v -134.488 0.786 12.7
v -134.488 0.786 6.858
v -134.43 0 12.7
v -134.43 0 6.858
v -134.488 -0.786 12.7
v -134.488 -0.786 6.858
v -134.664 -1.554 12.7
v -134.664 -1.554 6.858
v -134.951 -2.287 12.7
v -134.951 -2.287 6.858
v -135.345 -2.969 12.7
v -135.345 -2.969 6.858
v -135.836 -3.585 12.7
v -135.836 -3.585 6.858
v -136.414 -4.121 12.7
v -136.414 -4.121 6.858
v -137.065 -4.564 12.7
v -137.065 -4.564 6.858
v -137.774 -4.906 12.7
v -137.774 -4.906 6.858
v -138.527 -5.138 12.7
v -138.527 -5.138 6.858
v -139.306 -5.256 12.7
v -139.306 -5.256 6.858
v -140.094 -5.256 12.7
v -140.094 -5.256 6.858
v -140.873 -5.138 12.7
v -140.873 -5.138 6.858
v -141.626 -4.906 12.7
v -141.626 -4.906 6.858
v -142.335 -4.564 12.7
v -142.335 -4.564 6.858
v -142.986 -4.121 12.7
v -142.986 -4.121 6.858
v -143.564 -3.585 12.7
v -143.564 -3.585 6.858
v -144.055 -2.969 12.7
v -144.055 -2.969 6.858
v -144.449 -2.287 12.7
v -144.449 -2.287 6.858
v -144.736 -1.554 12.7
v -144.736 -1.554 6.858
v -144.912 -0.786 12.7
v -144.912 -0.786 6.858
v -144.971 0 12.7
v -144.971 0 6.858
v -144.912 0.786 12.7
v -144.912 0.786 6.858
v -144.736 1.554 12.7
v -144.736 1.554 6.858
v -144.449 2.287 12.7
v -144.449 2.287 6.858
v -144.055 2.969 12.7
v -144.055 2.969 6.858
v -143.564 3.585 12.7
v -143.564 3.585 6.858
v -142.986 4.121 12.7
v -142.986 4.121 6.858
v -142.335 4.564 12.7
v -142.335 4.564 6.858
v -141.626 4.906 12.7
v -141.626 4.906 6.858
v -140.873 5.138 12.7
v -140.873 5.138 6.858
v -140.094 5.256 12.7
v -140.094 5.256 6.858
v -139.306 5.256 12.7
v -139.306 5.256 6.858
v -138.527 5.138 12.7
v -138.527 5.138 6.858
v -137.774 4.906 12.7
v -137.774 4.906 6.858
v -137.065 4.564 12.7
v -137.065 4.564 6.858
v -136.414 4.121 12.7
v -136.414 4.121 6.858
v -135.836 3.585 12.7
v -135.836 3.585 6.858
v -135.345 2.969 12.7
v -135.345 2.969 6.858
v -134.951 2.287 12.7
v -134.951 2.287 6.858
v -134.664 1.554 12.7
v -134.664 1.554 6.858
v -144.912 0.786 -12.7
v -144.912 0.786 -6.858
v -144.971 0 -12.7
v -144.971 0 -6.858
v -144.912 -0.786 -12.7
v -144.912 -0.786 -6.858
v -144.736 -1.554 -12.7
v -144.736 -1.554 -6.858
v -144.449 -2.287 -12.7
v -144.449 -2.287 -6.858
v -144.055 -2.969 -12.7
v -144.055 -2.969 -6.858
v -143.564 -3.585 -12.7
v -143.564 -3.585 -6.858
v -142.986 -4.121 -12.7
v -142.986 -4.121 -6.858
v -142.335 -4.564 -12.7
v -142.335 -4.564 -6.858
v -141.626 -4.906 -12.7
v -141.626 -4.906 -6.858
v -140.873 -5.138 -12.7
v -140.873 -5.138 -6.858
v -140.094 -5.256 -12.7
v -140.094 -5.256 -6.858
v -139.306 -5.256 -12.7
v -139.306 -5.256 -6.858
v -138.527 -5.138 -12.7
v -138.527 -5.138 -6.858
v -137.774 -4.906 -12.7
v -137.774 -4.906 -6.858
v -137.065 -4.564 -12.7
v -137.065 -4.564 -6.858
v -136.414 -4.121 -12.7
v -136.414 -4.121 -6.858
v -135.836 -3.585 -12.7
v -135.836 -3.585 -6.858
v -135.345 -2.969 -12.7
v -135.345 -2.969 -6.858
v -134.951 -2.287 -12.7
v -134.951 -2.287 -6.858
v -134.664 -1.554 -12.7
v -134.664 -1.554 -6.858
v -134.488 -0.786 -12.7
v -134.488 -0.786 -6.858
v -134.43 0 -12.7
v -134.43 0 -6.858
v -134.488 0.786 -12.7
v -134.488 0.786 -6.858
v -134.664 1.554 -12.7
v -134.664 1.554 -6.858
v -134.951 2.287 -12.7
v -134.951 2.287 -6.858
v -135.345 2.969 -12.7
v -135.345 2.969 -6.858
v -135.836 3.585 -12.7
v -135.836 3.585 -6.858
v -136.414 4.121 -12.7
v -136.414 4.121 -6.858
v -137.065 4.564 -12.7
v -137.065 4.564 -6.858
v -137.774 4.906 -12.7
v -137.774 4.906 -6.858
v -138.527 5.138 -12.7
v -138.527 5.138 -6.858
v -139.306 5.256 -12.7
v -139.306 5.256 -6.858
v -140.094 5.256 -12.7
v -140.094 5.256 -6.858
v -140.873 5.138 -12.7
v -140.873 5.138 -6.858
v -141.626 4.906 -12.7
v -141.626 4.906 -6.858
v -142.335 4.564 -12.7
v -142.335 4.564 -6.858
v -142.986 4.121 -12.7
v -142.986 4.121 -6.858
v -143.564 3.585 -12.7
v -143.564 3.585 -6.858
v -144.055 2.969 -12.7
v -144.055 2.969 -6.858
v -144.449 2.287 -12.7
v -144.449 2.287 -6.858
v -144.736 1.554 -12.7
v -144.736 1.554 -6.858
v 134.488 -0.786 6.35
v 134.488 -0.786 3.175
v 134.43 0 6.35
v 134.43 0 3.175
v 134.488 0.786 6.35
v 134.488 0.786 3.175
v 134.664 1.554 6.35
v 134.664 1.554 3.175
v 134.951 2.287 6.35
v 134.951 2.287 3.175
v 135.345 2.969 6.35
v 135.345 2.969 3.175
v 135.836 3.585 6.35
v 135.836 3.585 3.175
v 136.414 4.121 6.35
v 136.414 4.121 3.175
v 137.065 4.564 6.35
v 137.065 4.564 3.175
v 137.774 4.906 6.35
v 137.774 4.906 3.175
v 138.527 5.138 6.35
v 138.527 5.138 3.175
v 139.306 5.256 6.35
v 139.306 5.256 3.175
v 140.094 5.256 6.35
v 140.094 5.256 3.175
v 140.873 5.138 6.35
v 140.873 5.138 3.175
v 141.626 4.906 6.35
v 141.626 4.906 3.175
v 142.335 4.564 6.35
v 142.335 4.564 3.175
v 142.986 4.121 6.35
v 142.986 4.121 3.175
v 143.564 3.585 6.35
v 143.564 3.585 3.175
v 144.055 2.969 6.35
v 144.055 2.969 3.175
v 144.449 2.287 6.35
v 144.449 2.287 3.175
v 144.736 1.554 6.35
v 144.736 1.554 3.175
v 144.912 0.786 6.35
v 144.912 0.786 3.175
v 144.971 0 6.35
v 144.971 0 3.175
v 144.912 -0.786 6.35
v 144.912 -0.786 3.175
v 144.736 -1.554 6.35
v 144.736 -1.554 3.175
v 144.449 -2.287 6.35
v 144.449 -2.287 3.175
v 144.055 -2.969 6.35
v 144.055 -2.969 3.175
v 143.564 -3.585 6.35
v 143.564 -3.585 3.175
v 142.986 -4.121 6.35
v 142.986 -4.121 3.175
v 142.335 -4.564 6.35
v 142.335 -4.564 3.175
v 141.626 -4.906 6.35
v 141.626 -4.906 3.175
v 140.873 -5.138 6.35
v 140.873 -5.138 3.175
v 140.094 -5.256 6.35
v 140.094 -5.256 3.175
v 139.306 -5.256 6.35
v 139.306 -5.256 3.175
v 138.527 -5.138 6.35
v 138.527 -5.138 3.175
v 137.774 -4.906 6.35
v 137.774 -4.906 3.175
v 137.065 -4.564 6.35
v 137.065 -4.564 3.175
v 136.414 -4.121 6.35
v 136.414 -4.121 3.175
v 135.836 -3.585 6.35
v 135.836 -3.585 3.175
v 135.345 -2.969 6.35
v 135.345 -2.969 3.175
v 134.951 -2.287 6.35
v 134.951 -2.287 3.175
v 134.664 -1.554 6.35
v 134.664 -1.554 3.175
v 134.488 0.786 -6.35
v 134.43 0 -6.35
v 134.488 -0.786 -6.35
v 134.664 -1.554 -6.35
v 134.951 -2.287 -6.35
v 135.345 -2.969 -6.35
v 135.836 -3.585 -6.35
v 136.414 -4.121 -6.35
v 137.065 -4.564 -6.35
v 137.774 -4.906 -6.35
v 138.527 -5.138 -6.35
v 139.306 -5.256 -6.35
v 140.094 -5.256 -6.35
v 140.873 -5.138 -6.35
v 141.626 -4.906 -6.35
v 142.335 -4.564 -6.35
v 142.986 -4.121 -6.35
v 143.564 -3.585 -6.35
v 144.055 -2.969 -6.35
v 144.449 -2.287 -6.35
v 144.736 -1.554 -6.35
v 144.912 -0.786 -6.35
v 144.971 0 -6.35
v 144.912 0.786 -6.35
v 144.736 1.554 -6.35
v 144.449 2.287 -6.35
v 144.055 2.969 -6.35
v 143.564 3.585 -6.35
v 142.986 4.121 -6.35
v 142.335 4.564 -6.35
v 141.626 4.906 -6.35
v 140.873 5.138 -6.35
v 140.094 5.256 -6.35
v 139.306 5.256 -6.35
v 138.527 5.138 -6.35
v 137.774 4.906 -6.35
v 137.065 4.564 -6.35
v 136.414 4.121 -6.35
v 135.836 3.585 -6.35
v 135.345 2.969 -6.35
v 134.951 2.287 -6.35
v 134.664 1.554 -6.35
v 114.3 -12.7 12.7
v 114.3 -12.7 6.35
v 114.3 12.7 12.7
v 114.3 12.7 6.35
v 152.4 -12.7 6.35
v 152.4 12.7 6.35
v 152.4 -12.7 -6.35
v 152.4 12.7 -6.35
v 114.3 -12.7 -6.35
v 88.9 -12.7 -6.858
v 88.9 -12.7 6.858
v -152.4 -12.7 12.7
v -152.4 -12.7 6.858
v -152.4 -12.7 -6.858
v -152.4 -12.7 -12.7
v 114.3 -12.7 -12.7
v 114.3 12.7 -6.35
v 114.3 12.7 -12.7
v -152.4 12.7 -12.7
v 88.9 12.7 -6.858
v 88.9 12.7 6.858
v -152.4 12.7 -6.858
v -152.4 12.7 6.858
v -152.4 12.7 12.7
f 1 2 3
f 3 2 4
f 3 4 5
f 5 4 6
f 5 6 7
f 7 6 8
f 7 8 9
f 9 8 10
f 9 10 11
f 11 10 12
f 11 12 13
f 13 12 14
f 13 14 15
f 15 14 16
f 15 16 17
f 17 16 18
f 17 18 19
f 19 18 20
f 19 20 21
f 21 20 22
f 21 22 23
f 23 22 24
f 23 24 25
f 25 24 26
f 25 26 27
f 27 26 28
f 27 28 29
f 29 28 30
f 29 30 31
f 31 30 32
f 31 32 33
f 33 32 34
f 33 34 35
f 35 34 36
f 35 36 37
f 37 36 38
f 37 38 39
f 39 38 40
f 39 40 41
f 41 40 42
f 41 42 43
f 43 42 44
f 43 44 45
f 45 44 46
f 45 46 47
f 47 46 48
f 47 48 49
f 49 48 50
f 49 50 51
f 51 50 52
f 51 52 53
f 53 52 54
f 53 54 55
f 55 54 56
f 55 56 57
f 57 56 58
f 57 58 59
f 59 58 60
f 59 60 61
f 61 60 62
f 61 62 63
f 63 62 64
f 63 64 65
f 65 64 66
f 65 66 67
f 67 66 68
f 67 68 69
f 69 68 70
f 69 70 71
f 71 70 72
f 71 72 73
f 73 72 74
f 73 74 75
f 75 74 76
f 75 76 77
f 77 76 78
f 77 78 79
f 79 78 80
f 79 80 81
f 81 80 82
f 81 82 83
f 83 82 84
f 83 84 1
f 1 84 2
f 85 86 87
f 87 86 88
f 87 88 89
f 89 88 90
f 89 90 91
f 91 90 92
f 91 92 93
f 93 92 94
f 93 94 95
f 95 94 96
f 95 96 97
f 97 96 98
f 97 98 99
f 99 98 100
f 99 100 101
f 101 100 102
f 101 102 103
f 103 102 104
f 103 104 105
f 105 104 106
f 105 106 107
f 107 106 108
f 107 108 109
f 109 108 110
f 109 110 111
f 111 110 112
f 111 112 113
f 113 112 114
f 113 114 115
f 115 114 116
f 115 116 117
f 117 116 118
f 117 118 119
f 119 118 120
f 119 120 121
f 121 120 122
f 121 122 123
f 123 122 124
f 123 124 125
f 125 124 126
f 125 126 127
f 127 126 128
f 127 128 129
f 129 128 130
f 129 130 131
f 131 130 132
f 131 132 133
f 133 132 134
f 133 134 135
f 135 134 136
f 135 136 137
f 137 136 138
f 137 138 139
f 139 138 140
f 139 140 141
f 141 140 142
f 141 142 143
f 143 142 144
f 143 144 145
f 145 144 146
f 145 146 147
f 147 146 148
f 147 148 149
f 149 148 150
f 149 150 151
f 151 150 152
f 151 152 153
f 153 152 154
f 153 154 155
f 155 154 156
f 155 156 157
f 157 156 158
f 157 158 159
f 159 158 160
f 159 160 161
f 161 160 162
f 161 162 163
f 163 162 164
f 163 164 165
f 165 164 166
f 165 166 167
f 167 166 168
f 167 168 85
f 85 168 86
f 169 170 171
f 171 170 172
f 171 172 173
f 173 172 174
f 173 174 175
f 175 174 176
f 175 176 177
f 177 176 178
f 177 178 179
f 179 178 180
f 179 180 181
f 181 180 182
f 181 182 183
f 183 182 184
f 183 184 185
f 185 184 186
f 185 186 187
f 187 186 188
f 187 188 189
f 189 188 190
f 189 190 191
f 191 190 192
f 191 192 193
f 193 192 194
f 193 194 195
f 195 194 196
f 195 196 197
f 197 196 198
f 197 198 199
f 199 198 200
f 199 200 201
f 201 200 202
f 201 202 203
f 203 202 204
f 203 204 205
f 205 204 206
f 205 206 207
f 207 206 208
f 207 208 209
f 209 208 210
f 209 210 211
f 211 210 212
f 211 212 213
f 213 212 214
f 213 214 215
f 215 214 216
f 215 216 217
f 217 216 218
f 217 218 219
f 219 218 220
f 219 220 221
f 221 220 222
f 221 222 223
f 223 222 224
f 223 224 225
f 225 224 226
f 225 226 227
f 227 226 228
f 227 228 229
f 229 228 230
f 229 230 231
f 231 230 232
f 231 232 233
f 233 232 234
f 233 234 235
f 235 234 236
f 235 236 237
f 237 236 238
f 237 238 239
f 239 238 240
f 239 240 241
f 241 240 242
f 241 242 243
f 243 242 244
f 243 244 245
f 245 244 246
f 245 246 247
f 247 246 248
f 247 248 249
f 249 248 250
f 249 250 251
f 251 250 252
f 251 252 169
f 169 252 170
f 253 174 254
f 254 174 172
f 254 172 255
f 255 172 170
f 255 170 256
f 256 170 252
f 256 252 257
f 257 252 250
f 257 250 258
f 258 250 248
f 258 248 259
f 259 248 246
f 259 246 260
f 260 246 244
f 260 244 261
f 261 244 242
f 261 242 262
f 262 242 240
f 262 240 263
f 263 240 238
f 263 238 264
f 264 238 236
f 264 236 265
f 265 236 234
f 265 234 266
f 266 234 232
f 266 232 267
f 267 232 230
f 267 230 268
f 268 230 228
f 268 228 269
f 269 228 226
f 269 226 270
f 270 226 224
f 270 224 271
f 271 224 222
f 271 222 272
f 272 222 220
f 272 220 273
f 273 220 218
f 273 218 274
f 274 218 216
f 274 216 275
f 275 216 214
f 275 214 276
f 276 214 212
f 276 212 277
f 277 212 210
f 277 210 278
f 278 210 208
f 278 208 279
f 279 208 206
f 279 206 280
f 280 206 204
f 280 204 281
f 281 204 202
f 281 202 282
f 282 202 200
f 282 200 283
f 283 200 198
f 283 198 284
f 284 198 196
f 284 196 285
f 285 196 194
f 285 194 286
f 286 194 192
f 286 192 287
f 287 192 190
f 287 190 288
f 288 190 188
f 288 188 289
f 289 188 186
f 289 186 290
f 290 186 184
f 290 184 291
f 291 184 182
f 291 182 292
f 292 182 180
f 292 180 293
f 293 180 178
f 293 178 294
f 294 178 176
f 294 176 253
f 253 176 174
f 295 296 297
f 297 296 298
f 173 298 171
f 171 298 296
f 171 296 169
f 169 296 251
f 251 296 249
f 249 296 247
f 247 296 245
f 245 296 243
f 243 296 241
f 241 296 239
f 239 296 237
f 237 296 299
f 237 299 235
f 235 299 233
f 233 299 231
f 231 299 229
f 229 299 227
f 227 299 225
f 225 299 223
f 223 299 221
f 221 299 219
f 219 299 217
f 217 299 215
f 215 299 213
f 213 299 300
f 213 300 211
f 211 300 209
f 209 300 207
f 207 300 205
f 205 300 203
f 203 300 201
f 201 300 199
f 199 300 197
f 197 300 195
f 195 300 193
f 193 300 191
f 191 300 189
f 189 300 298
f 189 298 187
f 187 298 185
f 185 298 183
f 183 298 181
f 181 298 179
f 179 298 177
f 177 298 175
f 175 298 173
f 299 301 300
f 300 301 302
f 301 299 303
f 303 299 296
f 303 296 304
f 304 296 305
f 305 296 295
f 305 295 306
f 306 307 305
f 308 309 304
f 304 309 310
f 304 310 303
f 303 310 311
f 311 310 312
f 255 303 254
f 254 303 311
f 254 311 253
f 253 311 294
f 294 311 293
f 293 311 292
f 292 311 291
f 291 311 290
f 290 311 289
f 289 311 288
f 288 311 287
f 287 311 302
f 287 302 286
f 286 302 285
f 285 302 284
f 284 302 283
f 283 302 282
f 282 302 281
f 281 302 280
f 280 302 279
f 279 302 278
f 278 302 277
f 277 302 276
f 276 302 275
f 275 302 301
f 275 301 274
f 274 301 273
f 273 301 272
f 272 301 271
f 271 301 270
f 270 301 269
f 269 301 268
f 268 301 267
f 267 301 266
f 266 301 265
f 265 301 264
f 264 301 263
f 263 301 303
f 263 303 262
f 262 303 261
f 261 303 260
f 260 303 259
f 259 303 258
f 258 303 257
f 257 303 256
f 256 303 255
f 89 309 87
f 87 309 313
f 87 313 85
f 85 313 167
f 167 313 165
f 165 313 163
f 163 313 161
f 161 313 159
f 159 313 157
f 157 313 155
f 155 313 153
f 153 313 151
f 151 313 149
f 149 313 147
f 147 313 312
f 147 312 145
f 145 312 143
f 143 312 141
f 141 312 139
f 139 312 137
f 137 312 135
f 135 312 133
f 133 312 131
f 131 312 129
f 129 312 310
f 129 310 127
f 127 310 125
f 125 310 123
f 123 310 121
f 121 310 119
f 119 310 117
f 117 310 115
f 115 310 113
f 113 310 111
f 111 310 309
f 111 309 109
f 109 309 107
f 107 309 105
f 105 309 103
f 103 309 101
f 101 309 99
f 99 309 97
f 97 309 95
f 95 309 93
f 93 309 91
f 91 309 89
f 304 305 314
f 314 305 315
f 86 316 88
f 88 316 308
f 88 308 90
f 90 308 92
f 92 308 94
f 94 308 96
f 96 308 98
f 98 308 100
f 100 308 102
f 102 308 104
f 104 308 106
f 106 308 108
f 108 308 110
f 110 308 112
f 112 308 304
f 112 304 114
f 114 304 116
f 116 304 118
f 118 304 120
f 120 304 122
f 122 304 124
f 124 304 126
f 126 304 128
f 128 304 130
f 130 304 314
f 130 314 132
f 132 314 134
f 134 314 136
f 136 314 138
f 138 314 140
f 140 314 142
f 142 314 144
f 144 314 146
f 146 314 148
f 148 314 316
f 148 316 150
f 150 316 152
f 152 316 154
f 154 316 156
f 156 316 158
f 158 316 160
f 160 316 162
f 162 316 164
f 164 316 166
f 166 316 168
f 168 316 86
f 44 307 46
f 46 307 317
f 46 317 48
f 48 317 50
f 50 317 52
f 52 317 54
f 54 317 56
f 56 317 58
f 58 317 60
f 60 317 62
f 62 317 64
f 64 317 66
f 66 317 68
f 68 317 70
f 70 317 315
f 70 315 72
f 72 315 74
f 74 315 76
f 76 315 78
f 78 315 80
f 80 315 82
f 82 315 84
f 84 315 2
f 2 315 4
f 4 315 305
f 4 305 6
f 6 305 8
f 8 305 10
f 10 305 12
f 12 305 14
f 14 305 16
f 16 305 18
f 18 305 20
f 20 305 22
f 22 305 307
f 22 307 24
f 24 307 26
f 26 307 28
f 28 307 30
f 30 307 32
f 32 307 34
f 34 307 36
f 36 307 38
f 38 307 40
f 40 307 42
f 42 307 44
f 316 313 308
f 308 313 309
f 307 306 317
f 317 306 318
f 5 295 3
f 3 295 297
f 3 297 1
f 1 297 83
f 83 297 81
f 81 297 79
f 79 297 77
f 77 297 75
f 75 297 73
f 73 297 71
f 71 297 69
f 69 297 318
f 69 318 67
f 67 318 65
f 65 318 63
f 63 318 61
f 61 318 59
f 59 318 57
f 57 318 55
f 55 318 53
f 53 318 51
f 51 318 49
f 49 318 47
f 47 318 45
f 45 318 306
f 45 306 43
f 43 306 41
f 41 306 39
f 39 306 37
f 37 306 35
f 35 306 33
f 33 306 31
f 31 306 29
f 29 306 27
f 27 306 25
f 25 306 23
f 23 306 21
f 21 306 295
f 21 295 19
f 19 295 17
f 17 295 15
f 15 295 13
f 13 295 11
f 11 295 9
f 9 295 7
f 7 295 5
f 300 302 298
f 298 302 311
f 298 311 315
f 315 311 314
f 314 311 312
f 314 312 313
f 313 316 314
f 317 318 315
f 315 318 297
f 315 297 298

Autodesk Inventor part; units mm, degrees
ref_plane "YZ Plane" through (0, 0, 0) normal (1, 0, 0) x (0, 1, 0)
ref_plane "XZ Plane" through (0, 0, 0) normal (0, 1, 0) x (-1, 0, 0)
sketch "Sketch1" plane through (0, 0, 0) normal (0, 1, 0) x (-1, 0, 0)
  line L0 (152.4, 12.7) -> (-152.4, 12.7)
  line L1 (-152.4, 12.7) -> (-152.4, -12.7)
  line L2 (-152.4, -12.7) -> (152.4, -12.7)
  line L3 (152.4, -12.7) -> (152.4, 12.7)
  line L4 (152.4, 12.7) -> (-152.4, -12.7) construction
  line L5 (-152.4, 12.7) -> (152.4, -12.7) construction
  point P0 (0, 0)
  dimension "d0" = 304.8
  dimension "d1" = 25.4
extrude "Extrusion1" add sketch "Sketch1" along normal mid plane 25.4
sketch "Sketch3" plane through (0, 12.7, 0) normal (0, 1, 0) x (1, 0, 0)
  line L0 (-152.4, -6.858) -> (88.9, -6.858)
  line L1 (88.9, -6.858) -> (88.9, 6.858)
  line L2 (88.9, 6.858) -> (-152.4, 6.858)
  line L3 (-152.4, 6.858) -> (-152.4, -6.858)
  line L4 (-152.4, -6.858) -> (88.9, 6.858) construction
  line L5 (88.9, -6.858) -> (-152.4, 6.858) construction
  line L6 (-152.4, 12.7) -> (-152.4, -12.7) projected
  point P0 (0, 0)
  point P1 (-31.75, 0)
  dimension "d7" = 0
  dimension "d8" = 13.716
  dimension "d9" = 241.3
extrude "Extrusion2" cut sketch "Sketch3" against normal through all
sketch "Sketch4" plane through (0, 12.7, 0) normal (0, 1, 0) x (1, 0, 0)
  line L0 (152.4, 12.7) -> (-152.4, 12.7) projected
  line L1 (152.4, 12.7) -> (114.3, 12.7)
  line L2 (114.3, 12.7) -> (114.3, 6.35)
  line L3 (114.3, 6.35) -> (152.4, 6.35)
  line L4 (152.4, 6.35) -> (152.4, 12.7)
  line L5 (152.4, 0) -> (88.9, 0) construction
  line L6 (88.9, 6.858) -> (88.9, -6.858) construction
  point P0 (0, 0)
  point P1 (114.3, 12.7)
  dimension "d12" = 38.1
  dimension "d13" = 6.35
extrude "Extrusion3" cut sketch "Sketch4" against normal through all
mirror "Mirror1" about plane through (0, 0, 0) normal (0, 0, 1) of "Extrusion3"
sketch "Sketch5" plane through (-152.4, -12.7, 12.7) normal (0, 0, 1) x (1, 0, 0)
  circle A0 centre (12.7, 12.7) radius 5.2705
  circle A1 centre (292.1, 12.7) radius 5.2705
  line L0 (0, 25.4) -> (0, 0) projected
  line L1 (304.8, 25.4) -> (304.8, 0) projected
  point P0 (152.4, 12.7)
  dimension "d16" = 10.541
  dimension "d17" = 12.7
  dimension "d18" = 12.7
extrude "Extrusion4" cut sketch "Sketch5" against normal through all
properties part number "connectingRodV03-8-in" material "PET Plastic"
